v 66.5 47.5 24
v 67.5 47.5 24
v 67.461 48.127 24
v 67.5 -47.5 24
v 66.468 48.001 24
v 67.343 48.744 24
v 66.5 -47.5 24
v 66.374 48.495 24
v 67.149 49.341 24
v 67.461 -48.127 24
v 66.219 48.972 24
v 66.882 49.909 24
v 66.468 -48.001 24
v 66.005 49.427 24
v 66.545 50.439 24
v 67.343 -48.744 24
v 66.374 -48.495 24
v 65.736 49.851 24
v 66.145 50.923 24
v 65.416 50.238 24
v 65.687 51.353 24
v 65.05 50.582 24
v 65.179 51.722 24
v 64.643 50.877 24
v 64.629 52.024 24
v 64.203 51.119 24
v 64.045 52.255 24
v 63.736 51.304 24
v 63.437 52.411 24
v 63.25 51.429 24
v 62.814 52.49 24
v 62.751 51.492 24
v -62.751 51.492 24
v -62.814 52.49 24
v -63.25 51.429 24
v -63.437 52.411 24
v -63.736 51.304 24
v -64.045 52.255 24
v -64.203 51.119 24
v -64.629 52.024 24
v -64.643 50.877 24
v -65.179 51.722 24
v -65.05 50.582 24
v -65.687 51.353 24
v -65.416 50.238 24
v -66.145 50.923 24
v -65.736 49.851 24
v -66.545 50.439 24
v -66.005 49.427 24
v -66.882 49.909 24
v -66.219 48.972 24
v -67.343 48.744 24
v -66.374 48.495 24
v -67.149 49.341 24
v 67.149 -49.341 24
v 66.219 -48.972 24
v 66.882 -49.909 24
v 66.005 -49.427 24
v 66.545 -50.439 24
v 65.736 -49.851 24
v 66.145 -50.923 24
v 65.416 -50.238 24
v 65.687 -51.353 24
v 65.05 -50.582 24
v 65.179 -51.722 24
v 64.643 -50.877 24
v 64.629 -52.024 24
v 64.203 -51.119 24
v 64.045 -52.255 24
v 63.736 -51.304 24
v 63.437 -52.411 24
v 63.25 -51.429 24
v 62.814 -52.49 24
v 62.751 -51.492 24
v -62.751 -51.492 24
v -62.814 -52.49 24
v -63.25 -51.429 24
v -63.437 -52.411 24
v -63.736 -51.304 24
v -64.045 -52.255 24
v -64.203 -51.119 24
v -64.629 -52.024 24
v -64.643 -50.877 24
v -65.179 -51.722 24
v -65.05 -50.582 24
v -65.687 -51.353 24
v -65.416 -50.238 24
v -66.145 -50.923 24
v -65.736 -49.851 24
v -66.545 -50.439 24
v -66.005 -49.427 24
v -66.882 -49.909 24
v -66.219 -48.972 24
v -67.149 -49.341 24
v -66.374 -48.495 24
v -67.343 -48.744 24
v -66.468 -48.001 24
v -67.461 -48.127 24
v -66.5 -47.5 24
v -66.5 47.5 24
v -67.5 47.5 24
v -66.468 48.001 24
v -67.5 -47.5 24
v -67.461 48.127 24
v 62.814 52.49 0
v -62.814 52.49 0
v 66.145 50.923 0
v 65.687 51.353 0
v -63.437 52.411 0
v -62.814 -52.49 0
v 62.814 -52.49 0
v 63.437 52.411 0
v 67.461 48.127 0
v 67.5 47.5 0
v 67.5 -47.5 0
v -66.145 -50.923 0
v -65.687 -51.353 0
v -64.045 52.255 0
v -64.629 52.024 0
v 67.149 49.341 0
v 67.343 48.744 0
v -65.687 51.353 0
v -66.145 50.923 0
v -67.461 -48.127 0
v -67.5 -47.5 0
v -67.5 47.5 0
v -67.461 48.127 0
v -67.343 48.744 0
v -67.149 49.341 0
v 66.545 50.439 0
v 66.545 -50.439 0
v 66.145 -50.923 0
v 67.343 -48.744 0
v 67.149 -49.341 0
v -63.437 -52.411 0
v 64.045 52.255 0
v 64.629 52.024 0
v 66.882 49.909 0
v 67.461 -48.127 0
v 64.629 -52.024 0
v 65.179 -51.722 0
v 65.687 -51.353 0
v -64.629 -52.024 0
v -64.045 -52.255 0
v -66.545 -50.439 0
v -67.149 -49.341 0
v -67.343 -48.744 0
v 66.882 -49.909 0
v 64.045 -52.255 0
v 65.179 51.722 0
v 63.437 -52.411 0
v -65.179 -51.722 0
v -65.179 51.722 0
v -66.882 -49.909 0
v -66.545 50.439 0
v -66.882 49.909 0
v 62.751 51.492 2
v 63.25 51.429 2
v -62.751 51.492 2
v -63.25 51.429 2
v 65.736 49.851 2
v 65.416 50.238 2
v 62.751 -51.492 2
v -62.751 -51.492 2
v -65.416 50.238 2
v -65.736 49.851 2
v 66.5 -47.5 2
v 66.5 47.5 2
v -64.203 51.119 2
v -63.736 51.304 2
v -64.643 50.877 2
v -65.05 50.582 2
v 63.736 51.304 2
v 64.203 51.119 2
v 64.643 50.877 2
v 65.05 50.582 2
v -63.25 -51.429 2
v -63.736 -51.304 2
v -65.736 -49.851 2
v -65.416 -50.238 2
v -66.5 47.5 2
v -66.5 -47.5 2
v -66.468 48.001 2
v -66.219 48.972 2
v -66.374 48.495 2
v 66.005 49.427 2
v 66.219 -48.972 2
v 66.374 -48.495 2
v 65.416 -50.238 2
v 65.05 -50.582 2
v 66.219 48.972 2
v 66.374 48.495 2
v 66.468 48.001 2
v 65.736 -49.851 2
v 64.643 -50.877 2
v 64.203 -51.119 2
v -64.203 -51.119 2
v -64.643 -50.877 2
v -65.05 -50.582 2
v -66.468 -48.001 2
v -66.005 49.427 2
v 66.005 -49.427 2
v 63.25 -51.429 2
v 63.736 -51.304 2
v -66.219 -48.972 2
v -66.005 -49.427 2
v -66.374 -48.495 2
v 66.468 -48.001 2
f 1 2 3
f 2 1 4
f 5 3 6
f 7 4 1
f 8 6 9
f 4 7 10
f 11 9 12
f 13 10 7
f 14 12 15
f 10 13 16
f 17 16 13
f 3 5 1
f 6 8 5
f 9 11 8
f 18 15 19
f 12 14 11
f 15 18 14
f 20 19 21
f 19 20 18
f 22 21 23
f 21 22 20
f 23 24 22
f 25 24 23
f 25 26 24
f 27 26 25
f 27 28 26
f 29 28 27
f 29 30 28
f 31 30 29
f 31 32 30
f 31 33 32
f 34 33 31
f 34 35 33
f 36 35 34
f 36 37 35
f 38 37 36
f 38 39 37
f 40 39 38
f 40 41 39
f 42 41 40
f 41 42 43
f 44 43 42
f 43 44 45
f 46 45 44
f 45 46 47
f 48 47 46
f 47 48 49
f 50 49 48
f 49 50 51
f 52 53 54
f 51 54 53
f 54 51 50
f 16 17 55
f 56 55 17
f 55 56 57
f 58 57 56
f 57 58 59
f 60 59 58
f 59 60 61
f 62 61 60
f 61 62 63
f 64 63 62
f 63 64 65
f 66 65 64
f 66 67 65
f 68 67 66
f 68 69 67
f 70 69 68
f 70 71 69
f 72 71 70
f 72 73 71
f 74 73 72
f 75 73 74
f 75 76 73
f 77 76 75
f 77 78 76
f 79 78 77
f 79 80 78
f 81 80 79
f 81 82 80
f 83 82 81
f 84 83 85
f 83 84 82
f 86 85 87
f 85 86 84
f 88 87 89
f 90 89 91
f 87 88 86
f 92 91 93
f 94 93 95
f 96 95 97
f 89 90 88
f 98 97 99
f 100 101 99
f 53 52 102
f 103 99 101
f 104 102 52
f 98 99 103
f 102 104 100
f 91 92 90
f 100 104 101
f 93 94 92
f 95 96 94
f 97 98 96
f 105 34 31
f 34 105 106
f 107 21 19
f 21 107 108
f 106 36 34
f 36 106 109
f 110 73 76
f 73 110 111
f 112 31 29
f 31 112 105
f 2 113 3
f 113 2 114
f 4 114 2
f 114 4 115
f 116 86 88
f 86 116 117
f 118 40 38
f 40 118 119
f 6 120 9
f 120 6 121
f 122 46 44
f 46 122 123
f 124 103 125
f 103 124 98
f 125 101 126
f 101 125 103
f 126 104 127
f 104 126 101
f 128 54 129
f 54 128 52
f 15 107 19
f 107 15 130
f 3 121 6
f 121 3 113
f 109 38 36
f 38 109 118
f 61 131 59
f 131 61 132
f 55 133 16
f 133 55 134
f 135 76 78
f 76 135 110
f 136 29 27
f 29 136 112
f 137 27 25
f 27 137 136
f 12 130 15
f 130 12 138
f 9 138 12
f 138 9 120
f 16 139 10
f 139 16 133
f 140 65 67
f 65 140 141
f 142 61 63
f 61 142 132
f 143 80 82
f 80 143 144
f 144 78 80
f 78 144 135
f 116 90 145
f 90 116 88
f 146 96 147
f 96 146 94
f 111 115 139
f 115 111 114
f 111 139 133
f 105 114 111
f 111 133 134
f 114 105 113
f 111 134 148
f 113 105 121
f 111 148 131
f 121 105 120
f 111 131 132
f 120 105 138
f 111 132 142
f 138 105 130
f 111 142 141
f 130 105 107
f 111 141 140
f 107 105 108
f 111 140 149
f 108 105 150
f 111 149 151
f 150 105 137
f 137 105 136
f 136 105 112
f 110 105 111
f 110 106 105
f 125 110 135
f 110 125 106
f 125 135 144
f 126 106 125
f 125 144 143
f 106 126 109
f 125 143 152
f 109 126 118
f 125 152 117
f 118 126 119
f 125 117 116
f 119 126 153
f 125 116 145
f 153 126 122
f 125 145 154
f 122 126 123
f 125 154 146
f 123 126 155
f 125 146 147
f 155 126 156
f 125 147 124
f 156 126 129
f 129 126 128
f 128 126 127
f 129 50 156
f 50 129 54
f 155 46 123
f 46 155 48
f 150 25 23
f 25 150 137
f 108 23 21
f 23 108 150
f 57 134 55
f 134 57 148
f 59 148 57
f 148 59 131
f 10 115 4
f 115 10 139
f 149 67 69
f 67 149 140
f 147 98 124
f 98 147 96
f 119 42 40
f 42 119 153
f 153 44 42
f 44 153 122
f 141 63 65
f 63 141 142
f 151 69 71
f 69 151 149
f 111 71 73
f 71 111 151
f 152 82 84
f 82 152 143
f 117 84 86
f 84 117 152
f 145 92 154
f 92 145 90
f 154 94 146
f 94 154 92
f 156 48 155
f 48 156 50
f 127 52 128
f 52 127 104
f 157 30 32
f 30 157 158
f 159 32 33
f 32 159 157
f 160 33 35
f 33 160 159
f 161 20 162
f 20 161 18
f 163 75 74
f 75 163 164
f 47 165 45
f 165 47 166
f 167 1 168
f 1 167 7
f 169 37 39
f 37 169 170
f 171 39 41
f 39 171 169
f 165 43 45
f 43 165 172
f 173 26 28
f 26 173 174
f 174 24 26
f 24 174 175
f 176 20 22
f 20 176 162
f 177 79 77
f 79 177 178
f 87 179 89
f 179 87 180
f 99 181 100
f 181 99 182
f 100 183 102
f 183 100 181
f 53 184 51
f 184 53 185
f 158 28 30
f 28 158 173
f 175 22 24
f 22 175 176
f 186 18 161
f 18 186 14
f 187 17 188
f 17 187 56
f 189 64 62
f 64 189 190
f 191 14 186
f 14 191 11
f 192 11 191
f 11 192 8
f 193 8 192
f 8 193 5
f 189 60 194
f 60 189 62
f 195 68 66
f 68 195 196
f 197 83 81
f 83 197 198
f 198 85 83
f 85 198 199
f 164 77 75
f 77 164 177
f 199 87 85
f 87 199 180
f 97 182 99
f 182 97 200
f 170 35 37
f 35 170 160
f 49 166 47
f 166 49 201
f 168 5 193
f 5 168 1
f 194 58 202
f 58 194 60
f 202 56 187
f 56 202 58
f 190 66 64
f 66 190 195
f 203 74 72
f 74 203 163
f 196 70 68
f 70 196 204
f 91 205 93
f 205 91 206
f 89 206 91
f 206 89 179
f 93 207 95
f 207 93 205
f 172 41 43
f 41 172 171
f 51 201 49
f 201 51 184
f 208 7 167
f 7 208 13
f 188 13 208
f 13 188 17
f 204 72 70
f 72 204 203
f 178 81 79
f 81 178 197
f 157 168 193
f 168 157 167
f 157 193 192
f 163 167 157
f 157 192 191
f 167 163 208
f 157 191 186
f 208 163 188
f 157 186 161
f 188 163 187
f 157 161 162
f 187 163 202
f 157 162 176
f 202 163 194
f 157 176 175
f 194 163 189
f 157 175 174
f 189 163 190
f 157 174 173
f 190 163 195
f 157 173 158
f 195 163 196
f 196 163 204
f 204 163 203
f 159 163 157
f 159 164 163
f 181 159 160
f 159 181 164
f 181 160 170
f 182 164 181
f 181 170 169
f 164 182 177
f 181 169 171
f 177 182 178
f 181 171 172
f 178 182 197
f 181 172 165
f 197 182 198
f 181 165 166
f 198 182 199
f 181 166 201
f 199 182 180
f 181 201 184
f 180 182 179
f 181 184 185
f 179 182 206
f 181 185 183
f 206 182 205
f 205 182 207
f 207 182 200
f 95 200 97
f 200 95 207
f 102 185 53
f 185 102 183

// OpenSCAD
$fn = 50;


difference() {
	union() {
		hull() {
			translate(v = [-62.5000000000, 47.5000000000, 0]) {
				cylinder(h = 24, r = 5);
			}
			translate(v = [62.5000000000, 47.5000000000, 0]) {
				cylinder(h = 24, r = 5);
			}
			translate(v = [-62.5000000000, -47.5000000000, 0]) {
				cylinder(h = 24, r = 5);
			}
			translate(v = [62.5000000000, -47.5000000000, 0]) {
				cylinder(h = 24, r = 5);
			}
		}
	}
	union() {
		translate(v = [0, 0, 2]) {
			hull() {
				translate(v = [-62.5000000000, 47.5000000000, 0]) {
					cylinder(h = 22, r = 4);
				}
				translate(v = [62.5000000000, 47.5000000000, 0]) {
					cylinder(h = 22, r = 4);
				}
				translate(v = [-62.5000000000, -47.5000000000, 0]) {
					cylinder(h = 22, r = 4);
				}
				translate(v = [62.5000000000, -47.5000000000, 0]) {
					cylinder(h = 22, r = 4);
				}
			}
		}
	}
}
